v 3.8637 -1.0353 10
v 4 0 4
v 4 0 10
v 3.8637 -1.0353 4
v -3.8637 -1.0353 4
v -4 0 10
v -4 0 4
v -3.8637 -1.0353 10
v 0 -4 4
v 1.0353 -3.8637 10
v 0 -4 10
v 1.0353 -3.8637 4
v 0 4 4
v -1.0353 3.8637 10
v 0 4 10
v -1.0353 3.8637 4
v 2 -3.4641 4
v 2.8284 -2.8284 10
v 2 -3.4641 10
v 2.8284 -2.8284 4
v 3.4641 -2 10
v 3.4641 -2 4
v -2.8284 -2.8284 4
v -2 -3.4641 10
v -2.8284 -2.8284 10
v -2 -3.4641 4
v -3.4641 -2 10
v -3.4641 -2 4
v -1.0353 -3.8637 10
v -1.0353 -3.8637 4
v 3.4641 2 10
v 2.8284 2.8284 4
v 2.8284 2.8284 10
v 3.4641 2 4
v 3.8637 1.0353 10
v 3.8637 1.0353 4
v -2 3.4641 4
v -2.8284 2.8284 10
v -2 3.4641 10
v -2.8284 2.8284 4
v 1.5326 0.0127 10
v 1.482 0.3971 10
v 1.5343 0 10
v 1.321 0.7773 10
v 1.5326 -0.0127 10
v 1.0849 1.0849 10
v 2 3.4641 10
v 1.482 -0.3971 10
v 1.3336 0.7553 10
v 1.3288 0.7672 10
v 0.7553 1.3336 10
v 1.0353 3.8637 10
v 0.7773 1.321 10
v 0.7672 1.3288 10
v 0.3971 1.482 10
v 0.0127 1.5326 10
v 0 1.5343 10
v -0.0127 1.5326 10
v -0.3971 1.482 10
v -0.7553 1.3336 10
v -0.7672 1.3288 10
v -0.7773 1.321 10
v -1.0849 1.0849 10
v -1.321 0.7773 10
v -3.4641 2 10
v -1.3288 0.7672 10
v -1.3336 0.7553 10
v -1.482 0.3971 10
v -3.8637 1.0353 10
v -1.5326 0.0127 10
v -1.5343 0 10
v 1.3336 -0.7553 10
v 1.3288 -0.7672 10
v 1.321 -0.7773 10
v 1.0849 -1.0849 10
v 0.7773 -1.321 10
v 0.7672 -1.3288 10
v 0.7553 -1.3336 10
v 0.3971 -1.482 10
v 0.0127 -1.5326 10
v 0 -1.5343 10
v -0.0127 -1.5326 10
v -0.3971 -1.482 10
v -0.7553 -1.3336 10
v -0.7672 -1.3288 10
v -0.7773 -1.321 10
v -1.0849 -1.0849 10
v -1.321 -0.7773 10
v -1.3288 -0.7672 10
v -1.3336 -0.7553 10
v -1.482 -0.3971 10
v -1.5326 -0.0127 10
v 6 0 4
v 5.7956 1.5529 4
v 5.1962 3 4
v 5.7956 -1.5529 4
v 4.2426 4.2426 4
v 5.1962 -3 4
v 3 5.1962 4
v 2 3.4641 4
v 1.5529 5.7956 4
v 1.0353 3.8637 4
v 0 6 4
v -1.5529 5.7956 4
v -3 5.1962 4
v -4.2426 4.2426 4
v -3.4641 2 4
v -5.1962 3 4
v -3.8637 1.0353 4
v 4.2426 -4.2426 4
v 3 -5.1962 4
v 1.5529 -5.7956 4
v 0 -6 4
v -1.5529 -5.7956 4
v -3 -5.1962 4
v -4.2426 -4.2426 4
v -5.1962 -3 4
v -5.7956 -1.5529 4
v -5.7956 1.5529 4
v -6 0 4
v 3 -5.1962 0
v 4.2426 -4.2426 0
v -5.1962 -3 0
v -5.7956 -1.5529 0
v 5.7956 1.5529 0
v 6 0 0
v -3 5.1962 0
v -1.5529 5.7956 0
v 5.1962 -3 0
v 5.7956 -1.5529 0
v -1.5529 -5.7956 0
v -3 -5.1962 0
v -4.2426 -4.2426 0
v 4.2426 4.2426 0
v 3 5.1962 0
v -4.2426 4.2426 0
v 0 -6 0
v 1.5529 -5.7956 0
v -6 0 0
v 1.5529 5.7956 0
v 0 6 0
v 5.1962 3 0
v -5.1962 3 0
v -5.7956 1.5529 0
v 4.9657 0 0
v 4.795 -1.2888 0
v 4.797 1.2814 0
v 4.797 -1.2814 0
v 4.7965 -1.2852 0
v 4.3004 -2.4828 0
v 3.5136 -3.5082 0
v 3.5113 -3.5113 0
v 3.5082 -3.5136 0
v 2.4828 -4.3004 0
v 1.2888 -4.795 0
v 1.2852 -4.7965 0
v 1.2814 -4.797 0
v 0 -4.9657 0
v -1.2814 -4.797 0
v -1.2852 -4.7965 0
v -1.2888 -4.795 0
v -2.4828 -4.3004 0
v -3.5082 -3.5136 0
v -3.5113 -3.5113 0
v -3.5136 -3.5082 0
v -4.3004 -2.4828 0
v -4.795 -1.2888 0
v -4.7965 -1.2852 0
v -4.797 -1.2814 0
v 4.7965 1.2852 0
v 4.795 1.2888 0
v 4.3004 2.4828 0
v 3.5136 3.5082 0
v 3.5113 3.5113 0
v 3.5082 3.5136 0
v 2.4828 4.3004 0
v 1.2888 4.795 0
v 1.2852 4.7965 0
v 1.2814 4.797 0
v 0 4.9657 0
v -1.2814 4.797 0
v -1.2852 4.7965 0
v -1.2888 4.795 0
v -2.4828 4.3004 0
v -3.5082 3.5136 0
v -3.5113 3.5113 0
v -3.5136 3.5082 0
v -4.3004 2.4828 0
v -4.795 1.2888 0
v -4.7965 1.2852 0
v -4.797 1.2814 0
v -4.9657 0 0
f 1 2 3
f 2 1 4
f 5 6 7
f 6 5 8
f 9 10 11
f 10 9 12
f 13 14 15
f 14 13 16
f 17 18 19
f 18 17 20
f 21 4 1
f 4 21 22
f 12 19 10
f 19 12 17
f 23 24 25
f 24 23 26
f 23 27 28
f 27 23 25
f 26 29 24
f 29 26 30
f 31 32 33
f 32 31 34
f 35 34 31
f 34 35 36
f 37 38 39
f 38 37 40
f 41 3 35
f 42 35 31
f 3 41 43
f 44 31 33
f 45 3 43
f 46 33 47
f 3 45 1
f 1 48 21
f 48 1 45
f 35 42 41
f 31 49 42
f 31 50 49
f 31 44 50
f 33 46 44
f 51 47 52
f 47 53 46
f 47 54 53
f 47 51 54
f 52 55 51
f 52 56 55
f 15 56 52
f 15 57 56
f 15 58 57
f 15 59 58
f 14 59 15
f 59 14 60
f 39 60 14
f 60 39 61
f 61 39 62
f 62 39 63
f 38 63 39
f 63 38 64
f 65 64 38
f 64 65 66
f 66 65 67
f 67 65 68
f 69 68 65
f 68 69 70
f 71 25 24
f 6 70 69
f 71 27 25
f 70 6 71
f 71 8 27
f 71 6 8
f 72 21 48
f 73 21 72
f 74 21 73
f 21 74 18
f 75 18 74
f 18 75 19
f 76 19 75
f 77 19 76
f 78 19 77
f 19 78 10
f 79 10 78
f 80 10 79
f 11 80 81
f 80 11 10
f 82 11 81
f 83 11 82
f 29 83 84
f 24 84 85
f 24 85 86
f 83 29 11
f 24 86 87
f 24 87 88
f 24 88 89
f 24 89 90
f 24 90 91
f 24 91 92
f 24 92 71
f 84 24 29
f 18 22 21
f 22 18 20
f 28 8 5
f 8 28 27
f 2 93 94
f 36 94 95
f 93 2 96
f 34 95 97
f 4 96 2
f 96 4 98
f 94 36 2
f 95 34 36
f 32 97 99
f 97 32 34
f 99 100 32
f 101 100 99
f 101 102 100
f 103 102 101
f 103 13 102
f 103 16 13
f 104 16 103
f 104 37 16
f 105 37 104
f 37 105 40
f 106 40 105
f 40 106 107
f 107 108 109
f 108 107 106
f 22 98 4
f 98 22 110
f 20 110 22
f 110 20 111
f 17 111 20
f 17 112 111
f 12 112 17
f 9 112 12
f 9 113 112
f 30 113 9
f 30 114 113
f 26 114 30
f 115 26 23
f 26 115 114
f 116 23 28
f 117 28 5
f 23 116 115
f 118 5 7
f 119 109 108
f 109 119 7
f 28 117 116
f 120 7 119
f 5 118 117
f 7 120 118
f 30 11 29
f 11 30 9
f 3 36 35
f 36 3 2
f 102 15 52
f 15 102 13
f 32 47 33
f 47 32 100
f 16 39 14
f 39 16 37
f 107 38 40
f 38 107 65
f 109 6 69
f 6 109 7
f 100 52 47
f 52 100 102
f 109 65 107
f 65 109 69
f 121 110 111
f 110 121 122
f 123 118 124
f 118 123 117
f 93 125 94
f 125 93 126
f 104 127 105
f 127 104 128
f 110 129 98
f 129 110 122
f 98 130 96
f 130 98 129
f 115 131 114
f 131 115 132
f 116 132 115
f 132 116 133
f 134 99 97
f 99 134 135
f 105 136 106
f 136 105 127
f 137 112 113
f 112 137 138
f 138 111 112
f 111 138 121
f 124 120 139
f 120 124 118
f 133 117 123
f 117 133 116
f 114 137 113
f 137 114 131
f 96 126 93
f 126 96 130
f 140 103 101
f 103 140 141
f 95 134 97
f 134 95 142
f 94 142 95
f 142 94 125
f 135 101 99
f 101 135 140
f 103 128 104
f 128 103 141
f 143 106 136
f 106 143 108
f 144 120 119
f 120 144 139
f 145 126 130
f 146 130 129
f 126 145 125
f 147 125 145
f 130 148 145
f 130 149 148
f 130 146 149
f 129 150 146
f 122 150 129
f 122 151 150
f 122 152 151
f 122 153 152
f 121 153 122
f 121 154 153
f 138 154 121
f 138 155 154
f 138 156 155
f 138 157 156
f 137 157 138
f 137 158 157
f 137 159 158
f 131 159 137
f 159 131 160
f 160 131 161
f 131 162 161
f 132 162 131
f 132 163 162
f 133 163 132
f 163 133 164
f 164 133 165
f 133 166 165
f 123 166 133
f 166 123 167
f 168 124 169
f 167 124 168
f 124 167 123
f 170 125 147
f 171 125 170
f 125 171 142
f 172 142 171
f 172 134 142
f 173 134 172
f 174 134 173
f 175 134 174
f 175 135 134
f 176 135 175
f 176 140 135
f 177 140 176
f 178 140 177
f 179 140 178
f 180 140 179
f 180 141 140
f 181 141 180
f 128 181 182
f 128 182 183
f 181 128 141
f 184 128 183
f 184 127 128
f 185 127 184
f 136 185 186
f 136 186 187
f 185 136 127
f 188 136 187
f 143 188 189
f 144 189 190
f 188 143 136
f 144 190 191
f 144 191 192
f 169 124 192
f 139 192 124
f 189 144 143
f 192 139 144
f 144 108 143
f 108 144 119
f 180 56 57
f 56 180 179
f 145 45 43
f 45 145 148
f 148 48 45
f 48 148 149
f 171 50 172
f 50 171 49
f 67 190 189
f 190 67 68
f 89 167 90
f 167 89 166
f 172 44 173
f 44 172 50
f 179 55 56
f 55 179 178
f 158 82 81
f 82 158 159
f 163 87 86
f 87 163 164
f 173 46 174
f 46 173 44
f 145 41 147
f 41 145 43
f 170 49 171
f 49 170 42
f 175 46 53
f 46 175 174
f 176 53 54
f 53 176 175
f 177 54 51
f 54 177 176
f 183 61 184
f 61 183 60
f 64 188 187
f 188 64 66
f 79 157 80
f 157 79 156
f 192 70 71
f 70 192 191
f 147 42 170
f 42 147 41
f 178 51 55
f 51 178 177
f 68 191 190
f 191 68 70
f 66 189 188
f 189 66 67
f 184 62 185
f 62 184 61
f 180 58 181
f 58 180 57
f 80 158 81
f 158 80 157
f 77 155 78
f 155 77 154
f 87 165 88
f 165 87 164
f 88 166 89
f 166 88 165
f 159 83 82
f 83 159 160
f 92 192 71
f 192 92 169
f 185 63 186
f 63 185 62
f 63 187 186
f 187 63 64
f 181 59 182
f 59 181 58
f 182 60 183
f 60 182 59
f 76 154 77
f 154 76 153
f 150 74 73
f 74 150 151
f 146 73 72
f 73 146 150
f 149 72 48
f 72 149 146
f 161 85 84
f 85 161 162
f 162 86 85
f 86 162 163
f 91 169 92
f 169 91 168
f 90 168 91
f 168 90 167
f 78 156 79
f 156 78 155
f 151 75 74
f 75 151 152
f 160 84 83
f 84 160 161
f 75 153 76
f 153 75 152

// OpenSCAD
module mk8_extruder_guide()
{
    translate([0, 0, 10]) rotate([180, 0, 0])
    difference() {
        union() {
            cylinder(d=8, h=6, $fn=24);
            translate([0, 0, 6])
                cylinder(d=12, h=4, $fn=24);
        }
        translate([0, 0, -0.1]) cylinder(d1=3, d2=10, h=10.2, $fn=24);
    }
}

mk8_extruder_guide();
